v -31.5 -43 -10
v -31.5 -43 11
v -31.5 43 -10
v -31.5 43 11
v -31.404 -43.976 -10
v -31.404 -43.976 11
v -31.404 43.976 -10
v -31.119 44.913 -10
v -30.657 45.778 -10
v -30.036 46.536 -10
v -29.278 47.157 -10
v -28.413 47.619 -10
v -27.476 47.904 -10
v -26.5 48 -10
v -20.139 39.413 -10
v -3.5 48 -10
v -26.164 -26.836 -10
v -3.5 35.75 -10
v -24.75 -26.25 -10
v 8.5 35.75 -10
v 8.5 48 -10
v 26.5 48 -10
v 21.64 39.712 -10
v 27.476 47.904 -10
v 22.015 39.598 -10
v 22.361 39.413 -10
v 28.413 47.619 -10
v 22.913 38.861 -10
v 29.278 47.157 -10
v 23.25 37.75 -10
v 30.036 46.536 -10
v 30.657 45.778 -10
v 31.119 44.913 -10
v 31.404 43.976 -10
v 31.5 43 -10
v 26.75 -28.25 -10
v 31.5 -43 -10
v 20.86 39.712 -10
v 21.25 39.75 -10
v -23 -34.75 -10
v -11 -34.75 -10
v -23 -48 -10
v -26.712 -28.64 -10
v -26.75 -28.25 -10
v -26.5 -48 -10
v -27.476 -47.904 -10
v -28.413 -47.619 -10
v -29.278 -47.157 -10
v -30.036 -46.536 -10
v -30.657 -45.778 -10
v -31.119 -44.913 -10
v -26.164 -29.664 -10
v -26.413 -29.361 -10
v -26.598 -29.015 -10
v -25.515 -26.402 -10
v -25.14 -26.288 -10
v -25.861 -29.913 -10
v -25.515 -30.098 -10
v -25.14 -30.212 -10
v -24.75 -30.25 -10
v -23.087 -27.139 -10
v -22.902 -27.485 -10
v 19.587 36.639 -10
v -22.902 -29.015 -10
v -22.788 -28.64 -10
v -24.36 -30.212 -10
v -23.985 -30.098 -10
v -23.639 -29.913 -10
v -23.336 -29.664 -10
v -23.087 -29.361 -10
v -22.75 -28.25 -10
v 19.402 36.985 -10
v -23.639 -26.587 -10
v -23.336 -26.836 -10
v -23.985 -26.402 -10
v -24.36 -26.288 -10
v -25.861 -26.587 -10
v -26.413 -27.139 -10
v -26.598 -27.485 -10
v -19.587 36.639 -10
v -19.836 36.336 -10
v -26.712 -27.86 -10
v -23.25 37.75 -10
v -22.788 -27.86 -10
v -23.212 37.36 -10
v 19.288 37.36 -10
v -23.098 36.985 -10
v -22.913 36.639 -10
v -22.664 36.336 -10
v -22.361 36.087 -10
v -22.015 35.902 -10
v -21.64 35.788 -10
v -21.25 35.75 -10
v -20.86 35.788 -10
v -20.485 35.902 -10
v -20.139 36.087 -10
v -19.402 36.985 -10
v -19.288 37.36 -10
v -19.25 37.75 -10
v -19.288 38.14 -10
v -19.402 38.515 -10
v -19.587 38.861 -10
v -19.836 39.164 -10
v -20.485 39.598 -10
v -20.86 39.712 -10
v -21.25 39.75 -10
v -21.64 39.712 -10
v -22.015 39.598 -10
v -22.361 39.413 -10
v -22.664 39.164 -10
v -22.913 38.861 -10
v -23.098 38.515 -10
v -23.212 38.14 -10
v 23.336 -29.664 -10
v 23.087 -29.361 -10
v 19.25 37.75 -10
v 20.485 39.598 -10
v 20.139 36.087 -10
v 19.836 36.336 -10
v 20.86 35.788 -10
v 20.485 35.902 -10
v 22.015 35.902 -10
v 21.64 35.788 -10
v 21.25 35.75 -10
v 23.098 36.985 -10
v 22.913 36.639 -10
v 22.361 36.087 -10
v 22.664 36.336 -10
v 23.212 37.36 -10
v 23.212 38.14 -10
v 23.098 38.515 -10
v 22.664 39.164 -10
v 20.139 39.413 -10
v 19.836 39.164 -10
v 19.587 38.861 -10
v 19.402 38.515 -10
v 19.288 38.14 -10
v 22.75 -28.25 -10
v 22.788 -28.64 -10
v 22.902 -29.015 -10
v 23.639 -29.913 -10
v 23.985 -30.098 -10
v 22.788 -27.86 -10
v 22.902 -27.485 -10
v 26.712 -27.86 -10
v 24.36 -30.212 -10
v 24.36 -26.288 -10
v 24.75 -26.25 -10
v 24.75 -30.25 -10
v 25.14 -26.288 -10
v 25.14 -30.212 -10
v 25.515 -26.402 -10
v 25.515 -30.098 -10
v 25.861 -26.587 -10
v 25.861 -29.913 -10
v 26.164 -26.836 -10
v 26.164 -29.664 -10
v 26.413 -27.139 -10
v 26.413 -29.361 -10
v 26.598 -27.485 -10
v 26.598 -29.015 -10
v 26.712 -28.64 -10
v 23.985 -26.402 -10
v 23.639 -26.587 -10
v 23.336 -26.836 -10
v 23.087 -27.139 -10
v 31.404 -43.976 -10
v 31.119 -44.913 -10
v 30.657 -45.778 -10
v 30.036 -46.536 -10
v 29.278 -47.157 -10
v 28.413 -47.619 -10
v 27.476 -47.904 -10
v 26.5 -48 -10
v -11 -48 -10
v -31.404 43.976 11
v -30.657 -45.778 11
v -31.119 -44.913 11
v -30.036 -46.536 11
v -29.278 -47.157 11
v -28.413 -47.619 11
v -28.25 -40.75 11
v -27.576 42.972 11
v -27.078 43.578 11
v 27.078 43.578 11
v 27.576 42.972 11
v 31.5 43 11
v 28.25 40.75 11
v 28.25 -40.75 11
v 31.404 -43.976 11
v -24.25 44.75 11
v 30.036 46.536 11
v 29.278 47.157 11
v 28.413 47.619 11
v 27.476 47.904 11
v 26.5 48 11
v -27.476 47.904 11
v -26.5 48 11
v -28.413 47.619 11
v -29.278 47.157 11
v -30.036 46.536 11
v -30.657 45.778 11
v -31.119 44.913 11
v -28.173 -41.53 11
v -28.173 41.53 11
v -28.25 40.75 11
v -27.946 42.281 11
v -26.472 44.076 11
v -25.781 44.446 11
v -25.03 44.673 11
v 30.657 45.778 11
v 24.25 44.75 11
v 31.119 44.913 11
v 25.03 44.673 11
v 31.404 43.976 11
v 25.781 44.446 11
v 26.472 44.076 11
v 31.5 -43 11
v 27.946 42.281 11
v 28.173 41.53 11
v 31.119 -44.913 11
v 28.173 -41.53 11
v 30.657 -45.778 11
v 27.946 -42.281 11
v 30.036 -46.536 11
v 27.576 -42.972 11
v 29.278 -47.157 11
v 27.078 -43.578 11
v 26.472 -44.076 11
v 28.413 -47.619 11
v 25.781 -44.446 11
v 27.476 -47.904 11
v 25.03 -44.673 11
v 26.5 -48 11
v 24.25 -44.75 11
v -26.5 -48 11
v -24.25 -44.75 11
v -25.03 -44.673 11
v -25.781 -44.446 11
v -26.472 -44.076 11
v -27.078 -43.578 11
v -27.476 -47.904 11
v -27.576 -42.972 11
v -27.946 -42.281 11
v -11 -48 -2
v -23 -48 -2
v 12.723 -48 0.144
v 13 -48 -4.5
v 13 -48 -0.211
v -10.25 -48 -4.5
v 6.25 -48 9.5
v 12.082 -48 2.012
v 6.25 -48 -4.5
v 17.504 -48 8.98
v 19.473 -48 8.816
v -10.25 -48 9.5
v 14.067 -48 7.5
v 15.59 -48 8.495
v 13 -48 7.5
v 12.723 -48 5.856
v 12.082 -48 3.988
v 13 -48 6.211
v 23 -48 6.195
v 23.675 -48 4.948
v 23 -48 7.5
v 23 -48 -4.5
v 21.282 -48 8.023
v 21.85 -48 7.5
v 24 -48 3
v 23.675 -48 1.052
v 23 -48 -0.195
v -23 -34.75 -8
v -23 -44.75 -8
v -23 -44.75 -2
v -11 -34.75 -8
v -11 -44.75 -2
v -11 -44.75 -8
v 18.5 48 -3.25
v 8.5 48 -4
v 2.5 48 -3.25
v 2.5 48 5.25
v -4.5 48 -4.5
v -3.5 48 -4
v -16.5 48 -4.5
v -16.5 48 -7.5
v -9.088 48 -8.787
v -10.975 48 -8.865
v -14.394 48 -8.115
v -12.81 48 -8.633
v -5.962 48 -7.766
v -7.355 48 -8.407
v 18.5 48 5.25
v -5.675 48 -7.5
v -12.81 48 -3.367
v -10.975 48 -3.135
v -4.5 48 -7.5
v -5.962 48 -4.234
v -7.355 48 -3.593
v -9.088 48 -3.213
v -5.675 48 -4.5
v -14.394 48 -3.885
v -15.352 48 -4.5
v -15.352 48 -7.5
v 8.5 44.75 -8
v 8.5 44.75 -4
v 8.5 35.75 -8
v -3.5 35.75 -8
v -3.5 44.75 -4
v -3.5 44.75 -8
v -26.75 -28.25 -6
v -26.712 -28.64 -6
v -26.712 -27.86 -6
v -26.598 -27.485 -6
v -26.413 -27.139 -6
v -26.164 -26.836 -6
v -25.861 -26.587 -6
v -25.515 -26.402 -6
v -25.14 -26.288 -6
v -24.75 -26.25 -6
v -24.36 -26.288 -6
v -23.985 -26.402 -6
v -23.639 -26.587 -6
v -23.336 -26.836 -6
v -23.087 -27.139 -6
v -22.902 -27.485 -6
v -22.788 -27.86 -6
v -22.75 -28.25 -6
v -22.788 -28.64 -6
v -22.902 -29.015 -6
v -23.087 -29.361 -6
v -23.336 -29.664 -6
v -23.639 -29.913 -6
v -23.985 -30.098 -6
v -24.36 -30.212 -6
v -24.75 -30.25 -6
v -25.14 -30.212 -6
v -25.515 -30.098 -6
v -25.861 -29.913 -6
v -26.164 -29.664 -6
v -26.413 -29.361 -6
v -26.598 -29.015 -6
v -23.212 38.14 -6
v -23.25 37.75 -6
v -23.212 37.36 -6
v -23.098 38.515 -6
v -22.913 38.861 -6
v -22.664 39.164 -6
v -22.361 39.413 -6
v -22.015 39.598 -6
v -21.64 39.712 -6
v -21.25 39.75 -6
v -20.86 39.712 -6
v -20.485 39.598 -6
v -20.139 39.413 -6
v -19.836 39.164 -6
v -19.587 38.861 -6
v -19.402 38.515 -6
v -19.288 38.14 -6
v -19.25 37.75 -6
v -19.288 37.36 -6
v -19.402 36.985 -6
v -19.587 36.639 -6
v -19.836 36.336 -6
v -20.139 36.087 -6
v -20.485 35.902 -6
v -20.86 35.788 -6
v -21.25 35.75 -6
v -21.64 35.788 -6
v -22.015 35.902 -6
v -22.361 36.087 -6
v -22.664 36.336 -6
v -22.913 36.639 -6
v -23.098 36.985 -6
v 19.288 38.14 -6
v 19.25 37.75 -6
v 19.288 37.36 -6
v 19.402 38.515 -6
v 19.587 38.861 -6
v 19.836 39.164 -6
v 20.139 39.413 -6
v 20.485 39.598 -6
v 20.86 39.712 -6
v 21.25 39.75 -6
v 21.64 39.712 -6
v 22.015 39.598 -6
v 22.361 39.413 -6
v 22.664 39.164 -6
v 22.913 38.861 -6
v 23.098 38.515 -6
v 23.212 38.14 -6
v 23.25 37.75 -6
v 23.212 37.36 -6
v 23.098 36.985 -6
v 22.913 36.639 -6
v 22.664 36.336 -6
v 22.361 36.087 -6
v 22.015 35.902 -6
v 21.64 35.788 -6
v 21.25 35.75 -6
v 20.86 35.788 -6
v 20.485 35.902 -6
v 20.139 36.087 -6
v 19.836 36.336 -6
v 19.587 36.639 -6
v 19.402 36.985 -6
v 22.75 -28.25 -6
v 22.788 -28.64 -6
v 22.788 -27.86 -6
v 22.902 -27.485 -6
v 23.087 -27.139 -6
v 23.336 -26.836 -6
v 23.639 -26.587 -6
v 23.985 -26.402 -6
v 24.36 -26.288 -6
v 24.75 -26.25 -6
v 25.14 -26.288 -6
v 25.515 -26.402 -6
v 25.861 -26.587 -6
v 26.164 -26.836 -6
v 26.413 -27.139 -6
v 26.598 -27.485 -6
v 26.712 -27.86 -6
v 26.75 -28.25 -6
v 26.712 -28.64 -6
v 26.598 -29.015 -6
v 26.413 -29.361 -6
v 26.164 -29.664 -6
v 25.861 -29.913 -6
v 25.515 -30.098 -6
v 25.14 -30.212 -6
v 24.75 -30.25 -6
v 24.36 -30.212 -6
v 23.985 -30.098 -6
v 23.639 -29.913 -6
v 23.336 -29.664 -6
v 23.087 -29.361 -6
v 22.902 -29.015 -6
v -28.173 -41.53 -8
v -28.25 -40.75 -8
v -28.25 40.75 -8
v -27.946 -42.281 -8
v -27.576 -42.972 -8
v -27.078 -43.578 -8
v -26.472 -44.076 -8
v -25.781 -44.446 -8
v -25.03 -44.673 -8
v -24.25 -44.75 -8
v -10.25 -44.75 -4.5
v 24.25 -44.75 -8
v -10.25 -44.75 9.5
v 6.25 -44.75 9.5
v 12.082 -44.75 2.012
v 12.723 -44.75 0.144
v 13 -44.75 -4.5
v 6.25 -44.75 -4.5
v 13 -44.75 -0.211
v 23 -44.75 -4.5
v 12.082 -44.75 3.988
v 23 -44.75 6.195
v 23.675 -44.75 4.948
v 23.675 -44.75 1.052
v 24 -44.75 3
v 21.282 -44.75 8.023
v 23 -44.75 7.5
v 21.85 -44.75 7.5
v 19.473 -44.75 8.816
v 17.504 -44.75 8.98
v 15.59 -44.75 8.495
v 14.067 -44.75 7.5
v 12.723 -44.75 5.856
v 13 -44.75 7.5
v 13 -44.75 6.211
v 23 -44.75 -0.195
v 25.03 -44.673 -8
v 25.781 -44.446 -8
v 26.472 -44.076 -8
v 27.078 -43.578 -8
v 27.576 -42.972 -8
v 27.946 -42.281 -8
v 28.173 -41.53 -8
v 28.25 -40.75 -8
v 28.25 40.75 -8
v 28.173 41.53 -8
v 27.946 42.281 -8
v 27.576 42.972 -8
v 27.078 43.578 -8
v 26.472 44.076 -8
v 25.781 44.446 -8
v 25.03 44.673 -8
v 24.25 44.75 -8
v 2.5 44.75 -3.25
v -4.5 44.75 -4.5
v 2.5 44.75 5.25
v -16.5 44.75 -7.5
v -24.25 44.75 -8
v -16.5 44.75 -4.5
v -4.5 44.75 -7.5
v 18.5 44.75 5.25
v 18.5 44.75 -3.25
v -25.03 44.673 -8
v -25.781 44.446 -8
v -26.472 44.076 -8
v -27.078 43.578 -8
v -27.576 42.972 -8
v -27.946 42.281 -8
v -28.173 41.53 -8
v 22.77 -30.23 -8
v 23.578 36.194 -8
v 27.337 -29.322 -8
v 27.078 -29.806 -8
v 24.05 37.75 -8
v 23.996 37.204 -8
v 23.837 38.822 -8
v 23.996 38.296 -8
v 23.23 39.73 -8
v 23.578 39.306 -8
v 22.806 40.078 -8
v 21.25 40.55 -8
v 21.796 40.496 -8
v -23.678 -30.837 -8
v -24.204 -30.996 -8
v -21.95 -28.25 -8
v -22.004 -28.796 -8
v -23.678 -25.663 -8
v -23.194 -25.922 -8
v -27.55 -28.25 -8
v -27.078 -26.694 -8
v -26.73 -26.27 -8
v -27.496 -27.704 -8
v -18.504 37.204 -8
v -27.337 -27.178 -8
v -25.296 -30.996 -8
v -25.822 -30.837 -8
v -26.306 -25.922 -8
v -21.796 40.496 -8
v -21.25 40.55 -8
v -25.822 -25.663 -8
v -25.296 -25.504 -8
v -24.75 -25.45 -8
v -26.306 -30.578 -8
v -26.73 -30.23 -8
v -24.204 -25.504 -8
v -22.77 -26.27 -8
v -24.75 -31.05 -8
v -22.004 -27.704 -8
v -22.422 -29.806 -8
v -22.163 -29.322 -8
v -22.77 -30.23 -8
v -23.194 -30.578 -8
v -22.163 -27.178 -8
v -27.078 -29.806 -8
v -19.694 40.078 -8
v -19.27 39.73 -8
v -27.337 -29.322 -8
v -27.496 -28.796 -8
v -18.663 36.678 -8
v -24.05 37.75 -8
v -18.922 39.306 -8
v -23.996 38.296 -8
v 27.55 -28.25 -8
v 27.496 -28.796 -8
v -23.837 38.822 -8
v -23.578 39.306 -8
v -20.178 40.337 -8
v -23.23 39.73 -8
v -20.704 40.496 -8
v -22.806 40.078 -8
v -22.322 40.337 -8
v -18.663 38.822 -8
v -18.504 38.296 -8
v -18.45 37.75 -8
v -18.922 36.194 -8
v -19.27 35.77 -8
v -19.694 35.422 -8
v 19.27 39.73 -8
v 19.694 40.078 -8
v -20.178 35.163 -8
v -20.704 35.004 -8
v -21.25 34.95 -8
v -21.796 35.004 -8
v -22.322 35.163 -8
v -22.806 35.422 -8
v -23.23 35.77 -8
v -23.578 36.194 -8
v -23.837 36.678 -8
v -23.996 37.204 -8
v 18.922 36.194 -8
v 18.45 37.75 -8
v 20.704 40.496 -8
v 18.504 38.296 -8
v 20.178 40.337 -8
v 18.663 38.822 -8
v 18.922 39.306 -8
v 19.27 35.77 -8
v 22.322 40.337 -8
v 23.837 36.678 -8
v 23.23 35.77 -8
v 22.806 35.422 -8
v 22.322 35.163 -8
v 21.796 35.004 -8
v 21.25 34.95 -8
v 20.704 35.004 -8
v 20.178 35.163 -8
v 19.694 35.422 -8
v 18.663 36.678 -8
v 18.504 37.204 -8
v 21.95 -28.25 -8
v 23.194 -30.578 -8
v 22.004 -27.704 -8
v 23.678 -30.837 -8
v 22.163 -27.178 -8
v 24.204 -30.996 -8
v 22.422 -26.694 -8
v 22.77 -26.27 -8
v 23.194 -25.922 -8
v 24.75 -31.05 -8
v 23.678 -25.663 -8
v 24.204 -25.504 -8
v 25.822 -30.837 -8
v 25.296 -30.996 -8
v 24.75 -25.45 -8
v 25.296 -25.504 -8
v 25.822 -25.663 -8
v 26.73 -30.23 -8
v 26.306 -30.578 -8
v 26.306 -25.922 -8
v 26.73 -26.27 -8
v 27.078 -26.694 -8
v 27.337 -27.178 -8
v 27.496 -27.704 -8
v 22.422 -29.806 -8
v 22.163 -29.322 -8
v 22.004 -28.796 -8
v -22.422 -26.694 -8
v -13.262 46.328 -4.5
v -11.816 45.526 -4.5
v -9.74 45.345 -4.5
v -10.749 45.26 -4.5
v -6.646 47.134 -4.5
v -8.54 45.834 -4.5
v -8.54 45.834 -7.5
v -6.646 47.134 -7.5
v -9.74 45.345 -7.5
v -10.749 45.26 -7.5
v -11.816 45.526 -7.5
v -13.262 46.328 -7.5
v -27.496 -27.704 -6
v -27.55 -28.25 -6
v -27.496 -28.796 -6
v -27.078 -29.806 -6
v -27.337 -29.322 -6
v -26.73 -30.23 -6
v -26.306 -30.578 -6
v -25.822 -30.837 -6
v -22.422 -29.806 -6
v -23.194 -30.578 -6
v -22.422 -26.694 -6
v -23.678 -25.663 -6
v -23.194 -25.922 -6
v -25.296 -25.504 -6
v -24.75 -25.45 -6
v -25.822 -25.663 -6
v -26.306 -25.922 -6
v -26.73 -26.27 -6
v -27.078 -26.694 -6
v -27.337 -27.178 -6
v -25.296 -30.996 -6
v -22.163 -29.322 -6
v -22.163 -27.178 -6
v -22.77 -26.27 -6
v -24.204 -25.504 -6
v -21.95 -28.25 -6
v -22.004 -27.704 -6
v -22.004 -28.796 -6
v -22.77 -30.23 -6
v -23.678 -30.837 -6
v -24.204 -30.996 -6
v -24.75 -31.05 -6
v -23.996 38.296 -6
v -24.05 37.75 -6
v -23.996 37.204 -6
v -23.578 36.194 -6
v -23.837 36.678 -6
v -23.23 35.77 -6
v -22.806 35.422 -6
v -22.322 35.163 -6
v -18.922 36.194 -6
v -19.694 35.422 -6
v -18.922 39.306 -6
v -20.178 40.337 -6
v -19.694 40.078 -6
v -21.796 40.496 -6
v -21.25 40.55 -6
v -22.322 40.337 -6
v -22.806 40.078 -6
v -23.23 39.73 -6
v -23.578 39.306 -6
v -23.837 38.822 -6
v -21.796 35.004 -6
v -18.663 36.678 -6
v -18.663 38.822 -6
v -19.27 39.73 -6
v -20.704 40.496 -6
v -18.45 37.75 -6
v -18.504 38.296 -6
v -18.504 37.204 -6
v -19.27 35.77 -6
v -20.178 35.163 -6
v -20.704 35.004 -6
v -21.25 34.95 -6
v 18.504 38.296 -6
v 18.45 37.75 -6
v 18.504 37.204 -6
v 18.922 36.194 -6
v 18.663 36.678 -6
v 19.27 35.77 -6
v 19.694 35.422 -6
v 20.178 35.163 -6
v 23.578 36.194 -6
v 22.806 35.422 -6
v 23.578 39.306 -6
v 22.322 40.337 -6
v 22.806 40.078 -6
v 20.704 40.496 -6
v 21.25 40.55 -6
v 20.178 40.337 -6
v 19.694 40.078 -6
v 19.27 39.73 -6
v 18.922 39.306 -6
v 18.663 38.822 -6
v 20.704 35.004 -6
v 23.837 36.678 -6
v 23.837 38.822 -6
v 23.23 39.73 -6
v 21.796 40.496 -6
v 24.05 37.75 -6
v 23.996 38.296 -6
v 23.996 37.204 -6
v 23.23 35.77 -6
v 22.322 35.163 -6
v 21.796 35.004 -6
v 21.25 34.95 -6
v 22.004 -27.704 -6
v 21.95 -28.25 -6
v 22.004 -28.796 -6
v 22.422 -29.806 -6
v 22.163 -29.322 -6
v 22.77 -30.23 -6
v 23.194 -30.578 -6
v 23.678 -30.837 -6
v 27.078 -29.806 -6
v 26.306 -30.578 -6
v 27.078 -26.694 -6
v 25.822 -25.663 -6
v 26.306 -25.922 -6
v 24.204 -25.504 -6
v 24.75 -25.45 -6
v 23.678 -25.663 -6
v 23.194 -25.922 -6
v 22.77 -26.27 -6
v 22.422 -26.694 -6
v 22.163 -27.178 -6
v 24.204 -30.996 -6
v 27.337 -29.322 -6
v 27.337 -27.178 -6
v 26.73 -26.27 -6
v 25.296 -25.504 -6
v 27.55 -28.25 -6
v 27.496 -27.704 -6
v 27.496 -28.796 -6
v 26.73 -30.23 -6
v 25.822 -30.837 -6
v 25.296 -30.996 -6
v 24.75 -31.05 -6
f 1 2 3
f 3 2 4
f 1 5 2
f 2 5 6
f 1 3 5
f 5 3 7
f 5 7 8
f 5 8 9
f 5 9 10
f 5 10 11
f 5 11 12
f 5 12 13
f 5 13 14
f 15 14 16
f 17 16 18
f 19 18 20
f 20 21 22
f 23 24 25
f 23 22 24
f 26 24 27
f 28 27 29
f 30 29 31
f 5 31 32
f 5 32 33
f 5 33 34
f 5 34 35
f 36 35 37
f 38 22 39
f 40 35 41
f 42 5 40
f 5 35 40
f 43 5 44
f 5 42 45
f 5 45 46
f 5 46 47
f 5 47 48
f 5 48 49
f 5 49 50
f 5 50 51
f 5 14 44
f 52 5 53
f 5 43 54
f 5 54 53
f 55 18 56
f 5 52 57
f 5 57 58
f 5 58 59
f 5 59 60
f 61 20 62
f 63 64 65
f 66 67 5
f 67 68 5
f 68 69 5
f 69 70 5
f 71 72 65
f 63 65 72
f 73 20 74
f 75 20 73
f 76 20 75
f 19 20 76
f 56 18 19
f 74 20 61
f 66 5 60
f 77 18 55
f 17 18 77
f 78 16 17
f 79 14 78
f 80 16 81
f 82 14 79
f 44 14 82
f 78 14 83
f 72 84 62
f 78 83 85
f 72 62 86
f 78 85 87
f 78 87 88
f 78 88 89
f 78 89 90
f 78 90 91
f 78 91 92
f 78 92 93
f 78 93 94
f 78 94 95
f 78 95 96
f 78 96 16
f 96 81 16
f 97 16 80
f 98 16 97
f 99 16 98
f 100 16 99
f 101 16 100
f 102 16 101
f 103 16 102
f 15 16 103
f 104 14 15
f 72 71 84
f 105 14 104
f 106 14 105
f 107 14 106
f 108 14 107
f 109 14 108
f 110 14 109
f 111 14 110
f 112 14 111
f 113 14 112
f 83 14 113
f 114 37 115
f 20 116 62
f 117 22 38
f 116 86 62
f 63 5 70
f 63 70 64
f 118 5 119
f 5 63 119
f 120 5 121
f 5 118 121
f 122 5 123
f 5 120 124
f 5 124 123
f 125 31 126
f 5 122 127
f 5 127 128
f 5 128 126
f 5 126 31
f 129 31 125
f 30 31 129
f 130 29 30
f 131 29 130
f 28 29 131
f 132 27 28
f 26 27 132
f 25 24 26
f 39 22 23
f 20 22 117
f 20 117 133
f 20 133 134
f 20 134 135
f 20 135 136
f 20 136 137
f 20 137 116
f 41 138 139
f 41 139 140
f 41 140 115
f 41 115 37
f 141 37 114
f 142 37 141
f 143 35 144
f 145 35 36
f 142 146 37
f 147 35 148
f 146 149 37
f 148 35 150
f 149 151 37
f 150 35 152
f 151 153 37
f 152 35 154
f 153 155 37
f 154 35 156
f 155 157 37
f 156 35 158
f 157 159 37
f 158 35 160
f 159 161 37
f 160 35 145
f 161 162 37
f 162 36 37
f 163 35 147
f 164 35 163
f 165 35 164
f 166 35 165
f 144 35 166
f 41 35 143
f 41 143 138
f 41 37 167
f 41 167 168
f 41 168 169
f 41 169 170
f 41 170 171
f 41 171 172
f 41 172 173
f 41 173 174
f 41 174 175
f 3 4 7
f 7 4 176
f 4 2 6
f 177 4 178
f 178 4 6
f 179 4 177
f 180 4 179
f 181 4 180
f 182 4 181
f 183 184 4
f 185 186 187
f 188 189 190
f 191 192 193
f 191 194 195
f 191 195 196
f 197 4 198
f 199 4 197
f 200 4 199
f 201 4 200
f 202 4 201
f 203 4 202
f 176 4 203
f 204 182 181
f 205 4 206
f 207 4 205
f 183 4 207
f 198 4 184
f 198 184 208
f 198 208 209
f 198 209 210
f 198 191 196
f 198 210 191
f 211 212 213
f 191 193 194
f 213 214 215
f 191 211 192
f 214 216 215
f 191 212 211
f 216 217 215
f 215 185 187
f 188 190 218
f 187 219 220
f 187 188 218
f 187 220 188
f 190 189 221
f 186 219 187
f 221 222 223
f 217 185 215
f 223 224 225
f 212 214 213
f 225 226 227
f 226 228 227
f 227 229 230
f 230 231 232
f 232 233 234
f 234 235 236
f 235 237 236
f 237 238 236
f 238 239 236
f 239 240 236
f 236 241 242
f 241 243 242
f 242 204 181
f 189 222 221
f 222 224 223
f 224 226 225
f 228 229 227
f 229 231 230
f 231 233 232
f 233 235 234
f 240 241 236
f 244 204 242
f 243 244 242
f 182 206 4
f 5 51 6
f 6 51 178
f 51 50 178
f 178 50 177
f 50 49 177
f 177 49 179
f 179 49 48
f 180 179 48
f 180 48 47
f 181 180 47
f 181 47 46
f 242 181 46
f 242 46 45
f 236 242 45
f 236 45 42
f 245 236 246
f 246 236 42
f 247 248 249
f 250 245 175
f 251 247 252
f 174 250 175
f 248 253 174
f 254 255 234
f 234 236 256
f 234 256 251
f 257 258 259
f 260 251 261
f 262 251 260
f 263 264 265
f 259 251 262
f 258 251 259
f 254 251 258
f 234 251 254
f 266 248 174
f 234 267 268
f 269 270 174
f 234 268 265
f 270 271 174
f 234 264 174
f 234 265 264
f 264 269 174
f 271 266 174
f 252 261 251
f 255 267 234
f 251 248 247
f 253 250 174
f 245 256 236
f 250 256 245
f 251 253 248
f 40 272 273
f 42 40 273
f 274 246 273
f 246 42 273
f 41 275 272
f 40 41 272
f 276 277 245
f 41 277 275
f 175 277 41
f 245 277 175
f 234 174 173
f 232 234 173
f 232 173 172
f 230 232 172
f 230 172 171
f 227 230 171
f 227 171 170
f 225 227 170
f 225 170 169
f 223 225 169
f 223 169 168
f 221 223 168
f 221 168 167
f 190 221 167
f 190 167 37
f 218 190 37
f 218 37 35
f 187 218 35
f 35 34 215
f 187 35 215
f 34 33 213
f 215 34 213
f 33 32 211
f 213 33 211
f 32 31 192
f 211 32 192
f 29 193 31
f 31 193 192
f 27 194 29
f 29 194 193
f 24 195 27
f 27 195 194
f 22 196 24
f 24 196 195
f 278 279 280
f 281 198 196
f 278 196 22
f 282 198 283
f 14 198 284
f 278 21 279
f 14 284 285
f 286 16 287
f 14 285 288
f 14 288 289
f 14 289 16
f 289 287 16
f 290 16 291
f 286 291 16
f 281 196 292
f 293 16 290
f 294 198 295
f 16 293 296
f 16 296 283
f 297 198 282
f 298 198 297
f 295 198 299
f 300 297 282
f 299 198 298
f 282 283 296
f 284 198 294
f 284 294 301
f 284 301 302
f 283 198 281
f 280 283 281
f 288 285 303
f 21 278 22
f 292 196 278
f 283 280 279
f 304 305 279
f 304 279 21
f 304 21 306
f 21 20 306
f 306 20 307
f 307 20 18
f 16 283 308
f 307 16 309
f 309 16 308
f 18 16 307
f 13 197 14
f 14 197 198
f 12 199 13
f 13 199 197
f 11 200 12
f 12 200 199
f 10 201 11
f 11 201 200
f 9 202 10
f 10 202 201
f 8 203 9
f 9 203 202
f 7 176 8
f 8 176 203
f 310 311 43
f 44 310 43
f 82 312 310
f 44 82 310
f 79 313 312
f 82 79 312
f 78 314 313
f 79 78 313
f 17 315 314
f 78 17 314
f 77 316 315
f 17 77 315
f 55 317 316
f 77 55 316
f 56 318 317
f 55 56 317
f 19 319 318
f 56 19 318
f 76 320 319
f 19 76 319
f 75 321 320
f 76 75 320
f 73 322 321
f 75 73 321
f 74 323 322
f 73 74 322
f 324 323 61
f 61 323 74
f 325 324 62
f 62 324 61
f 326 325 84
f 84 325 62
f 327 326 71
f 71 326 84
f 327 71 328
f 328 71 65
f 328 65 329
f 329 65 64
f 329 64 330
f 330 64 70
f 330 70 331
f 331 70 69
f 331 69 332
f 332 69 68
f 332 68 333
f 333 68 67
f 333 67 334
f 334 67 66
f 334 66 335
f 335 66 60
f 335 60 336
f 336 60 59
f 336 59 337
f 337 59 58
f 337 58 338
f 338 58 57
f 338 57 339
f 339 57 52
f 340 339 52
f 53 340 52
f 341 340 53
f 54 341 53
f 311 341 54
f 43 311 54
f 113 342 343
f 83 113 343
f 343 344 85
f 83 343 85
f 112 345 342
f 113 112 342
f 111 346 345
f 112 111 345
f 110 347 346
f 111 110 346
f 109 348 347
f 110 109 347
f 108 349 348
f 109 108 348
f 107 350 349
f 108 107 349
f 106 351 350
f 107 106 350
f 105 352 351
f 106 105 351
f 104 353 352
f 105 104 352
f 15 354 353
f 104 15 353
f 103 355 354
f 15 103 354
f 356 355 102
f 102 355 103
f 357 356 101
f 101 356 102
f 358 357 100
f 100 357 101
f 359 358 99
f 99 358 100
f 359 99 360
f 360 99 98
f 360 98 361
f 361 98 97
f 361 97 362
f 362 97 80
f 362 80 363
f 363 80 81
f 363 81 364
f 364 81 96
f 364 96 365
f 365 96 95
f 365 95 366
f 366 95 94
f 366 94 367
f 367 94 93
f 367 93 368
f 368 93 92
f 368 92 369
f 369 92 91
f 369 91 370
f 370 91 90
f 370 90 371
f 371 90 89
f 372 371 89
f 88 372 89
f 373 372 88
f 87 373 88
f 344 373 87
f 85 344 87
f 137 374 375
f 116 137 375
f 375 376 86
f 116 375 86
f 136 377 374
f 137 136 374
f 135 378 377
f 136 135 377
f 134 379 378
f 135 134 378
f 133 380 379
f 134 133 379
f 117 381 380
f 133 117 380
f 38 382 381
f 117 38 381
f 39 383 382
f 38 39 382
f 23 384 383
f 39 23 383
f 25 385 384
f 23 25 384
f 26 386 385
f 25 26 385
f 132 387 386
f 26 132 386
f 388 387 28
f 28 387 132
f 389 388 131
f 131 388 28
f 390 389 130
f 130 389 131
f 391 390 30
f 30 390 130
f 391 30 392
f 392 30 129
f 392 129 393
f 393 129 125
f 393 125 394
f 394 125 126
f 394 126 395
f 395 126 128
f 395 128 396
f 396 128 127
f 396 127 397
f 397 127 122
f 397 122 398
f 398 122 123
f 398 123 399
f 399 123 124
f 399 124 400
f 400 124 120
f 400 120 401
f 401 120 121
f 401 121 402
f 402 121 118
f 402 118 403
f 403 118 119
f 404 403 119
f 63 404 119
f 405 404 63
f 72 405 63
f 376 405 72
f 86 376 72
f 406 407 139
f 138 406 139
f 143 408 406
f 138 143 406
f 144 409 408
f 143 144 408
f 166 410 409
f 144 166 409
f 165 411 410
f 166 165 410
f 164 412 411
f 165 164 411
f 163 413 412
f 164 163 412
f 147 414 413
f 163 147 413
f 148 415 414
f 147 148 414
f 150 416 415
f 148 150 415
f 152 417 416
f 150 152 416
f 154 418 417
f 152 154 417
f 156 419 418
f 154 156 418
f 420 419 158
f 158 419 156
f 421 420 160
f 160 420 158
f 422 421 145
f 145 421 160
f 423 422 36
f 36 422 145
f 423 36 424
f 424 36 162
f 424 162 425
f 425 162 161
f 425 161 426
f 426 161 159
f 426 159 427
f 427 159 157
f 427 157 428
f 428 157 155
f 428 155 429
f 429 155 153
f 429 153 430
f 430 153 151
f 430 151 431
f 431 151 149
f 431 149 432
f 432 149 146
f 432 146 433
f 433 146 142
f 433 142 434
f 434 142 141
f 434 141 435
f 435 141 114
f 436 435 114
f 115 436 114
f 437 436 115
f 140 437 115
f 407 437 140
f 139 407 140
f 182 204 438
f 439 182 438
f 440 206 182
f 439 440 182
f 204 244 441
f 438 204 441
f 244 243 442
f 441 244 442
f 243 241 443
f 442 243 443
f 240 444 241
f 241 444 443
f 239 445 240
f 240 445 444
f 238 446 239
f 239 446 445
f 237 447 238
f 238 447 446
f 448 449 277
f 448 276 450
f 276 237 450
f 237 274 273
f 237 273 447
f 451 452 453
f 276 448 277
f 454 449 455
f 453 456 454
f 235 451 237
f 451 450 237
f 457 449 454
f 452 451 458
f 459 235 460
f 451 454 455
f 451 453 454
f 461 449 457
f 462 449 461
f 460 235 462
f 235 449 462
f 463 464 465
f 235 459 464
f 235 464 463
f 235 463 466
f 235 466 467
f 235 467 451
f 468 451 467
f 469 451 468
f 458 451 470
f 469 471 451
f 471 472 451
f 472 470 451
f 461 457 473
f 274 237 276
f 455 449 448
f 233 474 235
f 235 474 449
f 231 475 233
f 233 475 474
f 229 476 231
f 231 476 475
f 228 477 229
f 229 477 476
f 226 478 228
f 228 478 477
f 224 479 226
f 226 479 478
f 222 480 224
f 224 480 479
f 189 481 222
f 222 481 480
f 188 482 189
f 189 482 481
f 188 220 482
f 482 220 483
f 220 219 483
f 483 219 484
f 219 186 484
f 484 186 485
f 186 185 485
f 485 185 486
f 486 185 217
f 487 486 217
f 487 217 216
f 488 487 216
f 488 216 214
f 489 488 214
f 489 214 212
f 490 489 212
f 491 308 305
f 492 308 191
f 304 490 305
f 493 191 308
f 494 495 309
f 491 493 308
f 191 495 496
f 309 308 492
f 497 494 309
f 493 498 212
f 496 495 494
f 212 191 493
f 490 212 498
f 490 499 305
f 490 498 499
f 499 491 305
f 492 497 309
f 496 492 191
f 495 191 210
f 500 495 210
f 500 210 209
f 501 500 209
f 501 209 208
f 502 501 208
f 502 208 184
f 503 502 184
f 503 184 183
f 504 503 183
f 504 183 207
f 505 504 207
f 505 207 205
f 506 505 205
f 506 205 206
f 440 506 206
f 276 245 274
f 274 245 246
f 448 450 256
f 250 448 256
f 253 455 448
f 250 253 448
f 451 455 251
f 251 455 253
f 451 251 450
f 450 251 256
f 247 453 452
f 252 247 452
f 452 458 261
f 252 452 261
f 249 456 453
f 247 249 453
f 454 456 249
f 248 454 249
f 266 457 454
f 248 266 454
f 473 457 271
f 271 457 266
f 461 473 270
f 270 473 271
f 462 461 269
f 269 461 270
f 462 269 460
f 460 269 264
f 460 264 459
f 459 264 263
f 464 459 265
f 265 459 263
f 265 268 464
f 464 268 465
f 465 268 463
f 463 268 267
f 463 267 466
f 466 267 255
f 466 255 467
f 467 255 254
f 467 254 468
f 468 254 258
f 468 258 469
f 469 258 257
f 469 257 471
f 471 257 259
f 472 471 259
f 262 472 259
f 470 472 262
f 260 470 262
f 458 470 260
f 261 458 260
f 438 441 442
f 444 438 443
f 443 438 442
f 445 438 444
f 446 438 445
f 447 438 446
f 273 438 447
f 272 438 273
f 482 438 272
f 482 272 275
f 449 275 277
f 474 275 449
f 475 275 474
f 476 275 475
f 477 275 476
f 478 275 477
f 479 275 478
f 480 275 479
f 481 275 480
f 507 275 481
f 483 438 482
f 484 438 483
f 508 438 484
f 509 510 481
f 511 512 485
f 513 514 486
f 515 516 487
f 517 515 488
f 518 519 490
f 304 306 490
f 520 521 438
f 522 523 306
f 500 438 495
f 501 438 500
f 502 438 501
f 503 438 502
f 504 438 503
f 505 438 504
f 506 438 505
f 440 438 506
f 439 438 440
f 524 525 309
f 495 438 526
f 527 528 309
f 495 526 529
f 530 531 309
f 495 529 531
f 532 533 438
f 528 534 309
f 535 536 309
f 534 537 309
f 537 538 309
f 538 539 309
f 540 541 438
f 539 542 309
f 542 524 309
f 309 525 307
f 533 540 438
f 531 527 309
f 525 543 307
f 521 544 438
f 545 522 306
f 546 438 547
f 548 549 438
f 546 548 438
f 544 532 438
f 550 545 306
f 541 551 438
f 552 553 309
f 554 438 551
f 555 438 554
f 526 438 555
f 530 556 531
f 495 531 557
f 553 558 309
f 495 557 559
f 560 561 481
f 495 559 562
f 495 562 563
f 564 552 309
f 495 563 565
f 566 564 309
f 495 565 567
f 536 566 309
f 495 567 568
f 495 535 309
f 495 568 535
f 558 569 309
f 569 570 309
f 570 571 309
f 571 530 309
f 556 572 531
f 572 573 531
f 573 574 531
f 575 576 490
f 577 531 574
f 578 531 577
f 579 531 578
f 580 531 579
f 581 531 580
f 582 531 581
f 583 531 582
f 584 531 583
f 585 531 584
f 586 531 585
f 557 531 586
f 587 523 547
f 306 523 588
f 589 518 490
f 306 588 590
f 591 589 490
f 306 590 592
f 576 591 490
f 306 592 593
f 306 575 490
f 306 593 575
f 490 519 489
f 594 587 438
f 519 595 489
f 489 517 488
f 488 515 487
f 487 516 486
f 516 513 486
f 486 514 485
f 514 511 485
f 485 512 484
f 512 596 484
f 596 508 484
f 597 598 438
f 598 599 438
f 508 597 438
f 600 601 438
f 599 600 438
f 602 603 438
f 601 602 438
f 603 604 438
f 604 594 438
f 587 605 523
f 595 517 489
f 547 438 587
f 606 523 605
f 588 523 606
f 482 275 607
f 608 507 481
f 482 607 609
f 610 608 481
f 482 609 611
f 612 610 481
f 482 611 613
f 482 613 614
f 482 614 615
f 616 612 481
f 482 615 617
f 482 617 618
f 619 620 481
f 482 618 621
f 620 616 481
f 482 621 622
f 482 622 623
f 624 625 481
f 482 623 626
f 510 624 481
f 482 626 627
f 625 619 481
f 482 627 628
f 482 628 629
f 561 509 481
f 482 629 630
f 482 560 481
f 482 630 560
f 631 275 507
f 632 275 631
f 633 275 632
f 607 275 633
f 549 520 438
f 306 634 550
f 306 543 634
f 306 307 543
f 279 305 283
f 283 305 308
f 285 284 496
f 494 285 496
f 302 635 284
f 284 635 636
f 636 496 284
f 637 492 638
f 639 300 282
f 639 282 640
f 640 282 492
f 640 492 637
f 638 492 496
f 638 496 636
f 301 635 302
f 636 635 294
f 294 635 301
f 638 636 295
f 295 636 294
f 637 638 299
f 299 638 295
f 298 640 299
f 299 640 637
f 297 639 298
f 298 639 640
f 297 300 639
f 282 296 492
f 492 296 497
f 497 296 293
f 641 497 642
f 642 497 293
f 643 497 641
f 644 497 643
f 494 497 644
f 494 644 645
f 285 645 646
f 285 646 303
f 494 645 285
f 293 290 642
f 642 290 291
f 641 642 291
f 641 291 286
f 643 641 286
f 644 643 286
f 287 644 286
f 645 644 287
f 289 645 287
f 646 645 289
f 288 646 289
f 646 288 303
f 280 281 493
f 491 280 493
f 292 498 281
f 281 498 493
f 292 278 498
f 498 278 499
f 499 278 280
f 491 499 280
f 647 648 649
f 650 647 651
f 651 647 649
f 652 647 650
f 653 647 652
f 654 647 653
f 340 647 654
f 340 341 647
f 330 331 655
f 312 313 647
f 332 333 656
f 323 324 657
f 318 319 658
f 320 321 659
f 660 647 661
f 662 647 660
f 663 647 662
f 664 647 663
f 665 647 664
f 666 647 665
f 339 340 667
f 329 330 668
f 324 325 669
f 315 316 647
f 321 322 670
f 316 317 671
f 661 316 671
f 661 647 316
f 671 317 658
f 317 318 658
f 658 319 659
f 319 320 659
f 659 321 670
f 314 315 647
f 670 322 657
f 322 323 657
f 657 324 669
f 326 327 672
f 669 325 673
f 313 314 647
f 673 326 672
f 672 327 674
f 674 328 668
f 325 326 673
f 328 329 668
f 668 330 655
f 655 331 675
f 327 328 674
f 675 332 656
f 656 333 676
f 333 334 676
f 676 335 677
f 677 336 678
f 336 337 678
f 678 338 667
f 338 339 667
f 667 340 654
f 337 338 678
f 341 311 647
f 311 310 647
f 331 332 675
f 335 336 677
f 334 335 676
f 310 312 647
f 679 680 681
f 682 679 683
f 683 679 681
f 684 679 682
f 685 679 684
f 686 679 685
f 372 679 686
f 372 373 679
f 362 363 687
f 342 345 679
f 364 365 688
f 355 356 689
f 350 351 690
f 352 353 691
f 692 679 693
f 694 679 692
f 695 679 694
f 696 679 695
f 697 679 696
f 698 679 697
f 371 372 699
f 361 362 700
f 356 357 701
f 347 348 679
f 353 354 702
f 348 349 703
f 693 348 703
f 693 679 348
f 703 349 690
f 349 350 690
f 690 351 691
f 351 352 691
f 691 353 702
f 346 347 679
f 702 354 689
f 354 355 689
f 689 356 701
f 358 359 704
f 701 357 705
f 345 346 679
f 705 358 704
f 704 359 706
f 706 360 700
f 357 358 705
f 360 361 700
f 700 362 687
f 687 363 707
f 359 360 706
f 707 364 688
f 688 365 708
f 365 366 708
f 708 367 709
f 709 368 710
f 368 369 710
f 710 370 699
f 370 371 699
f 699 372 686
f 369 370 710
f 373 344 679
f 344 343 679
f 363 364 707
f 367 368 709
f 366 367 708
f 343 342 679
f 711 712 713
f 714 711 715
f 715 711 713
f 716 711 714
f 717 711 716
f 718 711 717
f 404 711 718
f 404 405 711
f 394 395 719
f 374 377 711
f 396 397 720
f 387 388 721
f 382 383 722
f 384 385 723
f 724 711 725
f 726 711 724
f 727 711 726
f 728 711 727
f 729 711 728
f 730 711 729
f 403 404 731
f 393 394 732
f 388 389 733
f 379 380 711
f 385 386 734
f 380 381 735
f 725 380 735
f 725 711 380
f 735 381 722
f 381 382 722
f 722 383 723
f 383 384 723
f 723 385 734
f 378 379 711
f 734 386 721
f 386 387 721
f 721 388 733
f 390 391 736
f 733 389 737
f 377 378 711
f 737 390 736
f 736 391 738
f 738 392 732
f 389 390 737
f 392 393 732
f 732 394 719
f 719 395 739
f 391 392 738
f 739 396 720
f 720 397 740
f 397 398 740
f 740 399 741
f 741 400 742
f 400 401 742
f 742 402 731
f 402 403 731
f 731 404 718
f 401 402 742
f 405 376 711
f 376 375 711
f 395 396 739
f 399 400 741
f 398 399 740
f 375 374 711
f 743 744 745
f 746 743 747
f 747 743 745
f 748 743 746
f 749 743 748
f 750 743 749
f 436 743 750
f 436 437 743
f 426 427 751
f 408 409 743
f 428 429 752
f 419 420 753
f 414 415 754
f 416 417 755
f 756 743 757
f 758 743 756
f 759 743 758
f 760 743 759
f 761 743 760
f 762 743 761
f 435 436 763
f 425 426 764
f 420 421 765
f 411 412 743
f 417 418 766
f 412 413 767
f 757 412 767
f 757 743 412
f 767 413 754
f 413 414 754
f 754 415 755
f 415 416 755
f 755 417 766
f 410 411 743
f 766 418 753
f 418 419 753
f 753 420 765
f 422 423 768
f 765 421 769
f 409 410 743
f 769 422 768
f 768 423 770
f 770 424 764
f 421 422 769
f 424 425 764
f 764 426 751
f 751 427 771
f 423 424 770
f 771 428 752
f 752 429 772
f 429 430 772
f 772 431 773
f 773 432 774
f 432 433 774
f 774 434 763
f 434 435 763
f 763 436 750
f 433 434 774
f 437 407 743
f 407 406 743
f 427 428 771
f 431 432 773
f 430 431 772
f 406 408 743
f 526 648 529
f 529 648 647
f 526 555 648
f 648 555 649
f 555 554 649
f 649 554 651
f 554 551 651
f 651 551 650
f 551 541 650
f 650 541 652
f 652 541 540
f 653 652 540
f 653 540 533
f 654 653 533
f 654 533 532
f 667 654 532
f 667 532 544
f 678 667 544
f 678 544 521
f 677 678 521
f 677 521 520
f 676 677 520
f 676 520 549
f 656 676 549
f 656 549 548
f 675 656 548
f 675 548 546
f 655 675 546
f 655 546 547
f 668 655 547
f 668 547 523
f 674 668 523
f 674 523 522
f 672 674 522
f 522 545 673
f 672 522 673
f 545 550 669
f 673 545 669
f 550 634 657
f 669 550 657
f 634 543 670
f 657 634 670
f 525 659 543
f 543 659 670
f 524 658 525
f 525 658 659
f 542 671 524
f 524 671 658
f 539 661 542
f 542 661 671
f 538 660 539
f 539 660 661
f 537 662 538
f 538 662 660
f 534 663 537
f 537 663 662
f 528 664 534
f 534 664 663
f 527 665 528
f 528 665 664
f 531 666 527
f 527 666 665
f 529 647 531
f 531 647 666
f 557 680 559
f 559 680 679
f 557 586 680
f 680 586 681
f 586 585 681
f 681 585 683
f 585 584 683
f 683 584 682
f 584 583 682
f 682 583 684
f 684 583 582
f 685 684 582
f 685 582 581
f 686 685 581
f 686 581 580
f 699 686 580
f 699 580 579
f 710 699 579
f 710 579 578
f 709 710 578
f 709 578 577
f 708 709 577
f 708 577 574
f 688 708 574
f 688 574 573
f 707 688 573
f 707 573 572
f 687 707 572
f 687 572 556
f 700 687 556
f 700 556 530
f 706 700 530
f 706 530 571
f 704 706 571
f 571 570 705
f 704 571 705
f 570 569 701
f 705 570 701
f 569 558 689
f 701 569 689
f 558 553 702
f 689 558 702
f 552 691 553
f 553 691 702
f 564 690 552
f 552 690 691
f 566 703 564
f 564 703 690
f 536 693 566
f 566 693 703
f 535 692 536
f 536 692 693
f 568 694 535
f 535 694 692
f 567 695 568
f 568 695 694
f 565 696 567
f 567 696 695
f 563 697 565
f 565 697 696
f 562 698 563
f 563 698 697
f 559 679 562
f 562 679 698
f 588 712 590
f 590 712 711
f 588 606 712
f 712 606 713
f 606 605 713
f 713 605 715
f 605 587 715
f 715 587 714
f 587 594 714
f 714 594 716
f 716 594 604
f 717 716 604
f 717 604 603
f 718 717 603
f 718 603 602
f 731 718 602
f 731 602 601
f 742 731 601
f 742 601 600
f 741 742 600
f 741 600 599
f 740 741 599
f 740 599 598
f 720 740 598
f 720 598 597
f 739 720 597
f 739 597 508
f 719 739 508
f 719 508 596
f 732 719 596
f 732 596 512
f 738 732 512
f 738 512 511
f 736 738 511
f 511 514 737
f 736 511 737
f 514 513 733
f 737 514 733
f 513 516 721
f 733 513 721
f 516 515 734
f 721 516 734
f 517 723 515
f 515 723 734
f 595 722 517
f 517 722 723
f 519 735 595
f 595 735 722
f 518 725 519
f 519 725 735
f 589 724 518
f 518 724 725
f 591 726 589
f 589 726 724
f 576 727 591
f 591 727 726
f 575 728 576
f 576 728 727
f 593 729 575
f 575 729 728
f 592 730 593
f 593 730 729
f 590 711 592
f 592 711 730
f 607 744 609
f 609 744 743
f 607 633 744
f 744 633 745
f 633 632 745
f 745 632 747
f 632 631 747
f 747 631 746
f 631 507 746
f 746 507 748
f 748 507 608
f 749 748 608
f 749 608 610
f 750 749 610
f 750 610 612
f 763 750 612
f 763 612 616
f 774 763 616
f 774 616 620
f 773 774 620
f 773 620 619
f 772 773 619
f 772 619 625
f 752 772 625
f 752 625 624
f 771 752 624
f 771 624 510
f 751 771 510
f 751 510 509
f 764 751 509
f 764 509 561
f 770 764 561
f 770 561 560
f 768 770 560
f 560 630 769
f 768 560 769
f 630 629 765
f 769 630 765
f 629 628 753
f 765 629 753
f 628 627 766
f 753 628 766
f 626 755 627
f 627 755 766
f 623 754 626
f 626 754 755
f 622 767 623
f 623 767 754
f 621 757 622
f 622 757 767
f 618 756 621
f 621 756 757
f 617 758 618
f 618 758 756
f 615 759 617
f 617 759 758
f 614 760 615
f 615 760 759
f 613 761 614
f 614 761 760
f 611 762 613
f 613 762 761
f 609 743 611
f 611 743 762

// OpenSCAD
wall_thickness=6.5;
base_thickness=2.0;
bb_depth=20;
bb_width=56.5;
bb_height=89.5;
bb_curve_corner=10;

peg_pow_front=16.5;
peg_pow_side=3.5;

peg_sd_front=7;
peg_sd_side=7;

peg_outer_radius=2.8;
peg_inner_radius=2.0;

module RoundedBB(extra_width,extra_height,depth,curve=bb_curve_corner) {
  minkowski() {
		cube([bb_width-curve+extra_width,bb_height-curve+extra_height,depth],center=true);
		cylinder(r=curve/2, height=depth, $fn=32);
	}
}

module BeagleBox(curve=bb_curve_corner) {
	difference() {
		RoundedBB(wall_thickness, wall_thickness, bb_depth, curve);
		translate([0,0,base_thickness])
			RoundedBB(0, 0, bb_depth, curve-2);
	}	
}

difference() {
	union() {
		difference() {
			BeagleBox();

			translate([0,0,-bb_depth/2+9]) {
				// -- Bottom End --

				// Power connector
%				translate([18,-bb_height/2,2.5])
					cube([10,10,12],center=true);
				translate( [18,-45,4] )
					rotate( [90,0,0] )
					cylinder( r=6, h=9, center=true );
				translate([18,-bb_height/2,2.5])
					cube([10,10,12],center=true);
				// Ethernet port
				translate([-2,-bb_height/2,3.5])
					cube([16.5,10,14],center=true);

				// Mini USB (Underneath)
				// translate([-23,-bb_height/2-5,-16])     // protruding
				// translate([-23,-bb_height/2,-9+0.334])  // thin layer underneath
				//	cube([10,12,base_thickness-0.3333]);
%				translate([-22,-bb_height/2-10,-12])
					cube([10,20,8]);
				translate([-23,-bb_height/2-10,-10])
					cube([12,20,9]);

				// -- Top End --

				// SD Card slot
%				translate([-6.5,bb_height/2,-5.5])
					cube([12,10,2], center=true);
				translate([-6.5-4,bb_height/2,-5.0])
					cube([12,10,3], center=true);
				// HDMI port
#				translate([-6.5+3.0,bb_height/2-9,-12.0])
					cube([12,20,9]);
				// USB port
				translate([10.5,bb_height/2,2.0])
					cube([16,10,8.5],center=true);
			}
		}

		// Pegs
		translate([0,0,-bb_depth/2+9]) {
			// Pegs on "power" end
			translate([-bb_width/2+peg_pow_side,-bb_height/2+peg_pow_front,-6])
				cylinder(r=peg_outer_radius,h=2,$fn=32,center=true);
			translate([bb_width/2-peg_pow_side,-bb_height/2+peg_pow_front,-6])
				cylinder(r=peg_outer_radius,h=2,$fn=32,center=true);

			// Pegs on "sd card" end
			translate([-bb_width/2+peg_sd_side,bb_height/2-peg_sd_front,-6])
				cylinder(r=peg_outer_radius,h=2,$fn=32,center=true);
			translate([bb_width/2-peg_sd_side,bb_height/2-peg_sd_front,-6])
				cylinder(r=peg_outer_radius,h=2,$fn=32,center=true);
		}
	}

	// Drill holes through pegs and floor
	translate([0,0,-bb_depth/2+9]) {
		// Pegs on "power" end
		translate([-bb_width/2+peg_pow_side,-bb_height/2+peg_pow_front,-5])
			cylinder(r=peg_inner_radius,h=10,$fn=32,center=true);
		translate([bb_width/2-peg_pow_side,-bb_height/2+peg_pow_front,-5])
			cylinder(r=peg_inner_radius,h=10,$fn=32,center=true);

		// Pegs on "sd card" end
		translate([-bb_width/2+peg_sd_side,bb_height/2-peg_sd_front,-5])
			cylinder(r=peg_inner_radius,h=10,$fn=32,center=true);
		translate([bb_width/2-peg_sd_side,bb_height/2-peg_sd_front,-5])
			cylinder(r=peg_inner_radius,h=10,$fn=32,center=true);
	}
}
